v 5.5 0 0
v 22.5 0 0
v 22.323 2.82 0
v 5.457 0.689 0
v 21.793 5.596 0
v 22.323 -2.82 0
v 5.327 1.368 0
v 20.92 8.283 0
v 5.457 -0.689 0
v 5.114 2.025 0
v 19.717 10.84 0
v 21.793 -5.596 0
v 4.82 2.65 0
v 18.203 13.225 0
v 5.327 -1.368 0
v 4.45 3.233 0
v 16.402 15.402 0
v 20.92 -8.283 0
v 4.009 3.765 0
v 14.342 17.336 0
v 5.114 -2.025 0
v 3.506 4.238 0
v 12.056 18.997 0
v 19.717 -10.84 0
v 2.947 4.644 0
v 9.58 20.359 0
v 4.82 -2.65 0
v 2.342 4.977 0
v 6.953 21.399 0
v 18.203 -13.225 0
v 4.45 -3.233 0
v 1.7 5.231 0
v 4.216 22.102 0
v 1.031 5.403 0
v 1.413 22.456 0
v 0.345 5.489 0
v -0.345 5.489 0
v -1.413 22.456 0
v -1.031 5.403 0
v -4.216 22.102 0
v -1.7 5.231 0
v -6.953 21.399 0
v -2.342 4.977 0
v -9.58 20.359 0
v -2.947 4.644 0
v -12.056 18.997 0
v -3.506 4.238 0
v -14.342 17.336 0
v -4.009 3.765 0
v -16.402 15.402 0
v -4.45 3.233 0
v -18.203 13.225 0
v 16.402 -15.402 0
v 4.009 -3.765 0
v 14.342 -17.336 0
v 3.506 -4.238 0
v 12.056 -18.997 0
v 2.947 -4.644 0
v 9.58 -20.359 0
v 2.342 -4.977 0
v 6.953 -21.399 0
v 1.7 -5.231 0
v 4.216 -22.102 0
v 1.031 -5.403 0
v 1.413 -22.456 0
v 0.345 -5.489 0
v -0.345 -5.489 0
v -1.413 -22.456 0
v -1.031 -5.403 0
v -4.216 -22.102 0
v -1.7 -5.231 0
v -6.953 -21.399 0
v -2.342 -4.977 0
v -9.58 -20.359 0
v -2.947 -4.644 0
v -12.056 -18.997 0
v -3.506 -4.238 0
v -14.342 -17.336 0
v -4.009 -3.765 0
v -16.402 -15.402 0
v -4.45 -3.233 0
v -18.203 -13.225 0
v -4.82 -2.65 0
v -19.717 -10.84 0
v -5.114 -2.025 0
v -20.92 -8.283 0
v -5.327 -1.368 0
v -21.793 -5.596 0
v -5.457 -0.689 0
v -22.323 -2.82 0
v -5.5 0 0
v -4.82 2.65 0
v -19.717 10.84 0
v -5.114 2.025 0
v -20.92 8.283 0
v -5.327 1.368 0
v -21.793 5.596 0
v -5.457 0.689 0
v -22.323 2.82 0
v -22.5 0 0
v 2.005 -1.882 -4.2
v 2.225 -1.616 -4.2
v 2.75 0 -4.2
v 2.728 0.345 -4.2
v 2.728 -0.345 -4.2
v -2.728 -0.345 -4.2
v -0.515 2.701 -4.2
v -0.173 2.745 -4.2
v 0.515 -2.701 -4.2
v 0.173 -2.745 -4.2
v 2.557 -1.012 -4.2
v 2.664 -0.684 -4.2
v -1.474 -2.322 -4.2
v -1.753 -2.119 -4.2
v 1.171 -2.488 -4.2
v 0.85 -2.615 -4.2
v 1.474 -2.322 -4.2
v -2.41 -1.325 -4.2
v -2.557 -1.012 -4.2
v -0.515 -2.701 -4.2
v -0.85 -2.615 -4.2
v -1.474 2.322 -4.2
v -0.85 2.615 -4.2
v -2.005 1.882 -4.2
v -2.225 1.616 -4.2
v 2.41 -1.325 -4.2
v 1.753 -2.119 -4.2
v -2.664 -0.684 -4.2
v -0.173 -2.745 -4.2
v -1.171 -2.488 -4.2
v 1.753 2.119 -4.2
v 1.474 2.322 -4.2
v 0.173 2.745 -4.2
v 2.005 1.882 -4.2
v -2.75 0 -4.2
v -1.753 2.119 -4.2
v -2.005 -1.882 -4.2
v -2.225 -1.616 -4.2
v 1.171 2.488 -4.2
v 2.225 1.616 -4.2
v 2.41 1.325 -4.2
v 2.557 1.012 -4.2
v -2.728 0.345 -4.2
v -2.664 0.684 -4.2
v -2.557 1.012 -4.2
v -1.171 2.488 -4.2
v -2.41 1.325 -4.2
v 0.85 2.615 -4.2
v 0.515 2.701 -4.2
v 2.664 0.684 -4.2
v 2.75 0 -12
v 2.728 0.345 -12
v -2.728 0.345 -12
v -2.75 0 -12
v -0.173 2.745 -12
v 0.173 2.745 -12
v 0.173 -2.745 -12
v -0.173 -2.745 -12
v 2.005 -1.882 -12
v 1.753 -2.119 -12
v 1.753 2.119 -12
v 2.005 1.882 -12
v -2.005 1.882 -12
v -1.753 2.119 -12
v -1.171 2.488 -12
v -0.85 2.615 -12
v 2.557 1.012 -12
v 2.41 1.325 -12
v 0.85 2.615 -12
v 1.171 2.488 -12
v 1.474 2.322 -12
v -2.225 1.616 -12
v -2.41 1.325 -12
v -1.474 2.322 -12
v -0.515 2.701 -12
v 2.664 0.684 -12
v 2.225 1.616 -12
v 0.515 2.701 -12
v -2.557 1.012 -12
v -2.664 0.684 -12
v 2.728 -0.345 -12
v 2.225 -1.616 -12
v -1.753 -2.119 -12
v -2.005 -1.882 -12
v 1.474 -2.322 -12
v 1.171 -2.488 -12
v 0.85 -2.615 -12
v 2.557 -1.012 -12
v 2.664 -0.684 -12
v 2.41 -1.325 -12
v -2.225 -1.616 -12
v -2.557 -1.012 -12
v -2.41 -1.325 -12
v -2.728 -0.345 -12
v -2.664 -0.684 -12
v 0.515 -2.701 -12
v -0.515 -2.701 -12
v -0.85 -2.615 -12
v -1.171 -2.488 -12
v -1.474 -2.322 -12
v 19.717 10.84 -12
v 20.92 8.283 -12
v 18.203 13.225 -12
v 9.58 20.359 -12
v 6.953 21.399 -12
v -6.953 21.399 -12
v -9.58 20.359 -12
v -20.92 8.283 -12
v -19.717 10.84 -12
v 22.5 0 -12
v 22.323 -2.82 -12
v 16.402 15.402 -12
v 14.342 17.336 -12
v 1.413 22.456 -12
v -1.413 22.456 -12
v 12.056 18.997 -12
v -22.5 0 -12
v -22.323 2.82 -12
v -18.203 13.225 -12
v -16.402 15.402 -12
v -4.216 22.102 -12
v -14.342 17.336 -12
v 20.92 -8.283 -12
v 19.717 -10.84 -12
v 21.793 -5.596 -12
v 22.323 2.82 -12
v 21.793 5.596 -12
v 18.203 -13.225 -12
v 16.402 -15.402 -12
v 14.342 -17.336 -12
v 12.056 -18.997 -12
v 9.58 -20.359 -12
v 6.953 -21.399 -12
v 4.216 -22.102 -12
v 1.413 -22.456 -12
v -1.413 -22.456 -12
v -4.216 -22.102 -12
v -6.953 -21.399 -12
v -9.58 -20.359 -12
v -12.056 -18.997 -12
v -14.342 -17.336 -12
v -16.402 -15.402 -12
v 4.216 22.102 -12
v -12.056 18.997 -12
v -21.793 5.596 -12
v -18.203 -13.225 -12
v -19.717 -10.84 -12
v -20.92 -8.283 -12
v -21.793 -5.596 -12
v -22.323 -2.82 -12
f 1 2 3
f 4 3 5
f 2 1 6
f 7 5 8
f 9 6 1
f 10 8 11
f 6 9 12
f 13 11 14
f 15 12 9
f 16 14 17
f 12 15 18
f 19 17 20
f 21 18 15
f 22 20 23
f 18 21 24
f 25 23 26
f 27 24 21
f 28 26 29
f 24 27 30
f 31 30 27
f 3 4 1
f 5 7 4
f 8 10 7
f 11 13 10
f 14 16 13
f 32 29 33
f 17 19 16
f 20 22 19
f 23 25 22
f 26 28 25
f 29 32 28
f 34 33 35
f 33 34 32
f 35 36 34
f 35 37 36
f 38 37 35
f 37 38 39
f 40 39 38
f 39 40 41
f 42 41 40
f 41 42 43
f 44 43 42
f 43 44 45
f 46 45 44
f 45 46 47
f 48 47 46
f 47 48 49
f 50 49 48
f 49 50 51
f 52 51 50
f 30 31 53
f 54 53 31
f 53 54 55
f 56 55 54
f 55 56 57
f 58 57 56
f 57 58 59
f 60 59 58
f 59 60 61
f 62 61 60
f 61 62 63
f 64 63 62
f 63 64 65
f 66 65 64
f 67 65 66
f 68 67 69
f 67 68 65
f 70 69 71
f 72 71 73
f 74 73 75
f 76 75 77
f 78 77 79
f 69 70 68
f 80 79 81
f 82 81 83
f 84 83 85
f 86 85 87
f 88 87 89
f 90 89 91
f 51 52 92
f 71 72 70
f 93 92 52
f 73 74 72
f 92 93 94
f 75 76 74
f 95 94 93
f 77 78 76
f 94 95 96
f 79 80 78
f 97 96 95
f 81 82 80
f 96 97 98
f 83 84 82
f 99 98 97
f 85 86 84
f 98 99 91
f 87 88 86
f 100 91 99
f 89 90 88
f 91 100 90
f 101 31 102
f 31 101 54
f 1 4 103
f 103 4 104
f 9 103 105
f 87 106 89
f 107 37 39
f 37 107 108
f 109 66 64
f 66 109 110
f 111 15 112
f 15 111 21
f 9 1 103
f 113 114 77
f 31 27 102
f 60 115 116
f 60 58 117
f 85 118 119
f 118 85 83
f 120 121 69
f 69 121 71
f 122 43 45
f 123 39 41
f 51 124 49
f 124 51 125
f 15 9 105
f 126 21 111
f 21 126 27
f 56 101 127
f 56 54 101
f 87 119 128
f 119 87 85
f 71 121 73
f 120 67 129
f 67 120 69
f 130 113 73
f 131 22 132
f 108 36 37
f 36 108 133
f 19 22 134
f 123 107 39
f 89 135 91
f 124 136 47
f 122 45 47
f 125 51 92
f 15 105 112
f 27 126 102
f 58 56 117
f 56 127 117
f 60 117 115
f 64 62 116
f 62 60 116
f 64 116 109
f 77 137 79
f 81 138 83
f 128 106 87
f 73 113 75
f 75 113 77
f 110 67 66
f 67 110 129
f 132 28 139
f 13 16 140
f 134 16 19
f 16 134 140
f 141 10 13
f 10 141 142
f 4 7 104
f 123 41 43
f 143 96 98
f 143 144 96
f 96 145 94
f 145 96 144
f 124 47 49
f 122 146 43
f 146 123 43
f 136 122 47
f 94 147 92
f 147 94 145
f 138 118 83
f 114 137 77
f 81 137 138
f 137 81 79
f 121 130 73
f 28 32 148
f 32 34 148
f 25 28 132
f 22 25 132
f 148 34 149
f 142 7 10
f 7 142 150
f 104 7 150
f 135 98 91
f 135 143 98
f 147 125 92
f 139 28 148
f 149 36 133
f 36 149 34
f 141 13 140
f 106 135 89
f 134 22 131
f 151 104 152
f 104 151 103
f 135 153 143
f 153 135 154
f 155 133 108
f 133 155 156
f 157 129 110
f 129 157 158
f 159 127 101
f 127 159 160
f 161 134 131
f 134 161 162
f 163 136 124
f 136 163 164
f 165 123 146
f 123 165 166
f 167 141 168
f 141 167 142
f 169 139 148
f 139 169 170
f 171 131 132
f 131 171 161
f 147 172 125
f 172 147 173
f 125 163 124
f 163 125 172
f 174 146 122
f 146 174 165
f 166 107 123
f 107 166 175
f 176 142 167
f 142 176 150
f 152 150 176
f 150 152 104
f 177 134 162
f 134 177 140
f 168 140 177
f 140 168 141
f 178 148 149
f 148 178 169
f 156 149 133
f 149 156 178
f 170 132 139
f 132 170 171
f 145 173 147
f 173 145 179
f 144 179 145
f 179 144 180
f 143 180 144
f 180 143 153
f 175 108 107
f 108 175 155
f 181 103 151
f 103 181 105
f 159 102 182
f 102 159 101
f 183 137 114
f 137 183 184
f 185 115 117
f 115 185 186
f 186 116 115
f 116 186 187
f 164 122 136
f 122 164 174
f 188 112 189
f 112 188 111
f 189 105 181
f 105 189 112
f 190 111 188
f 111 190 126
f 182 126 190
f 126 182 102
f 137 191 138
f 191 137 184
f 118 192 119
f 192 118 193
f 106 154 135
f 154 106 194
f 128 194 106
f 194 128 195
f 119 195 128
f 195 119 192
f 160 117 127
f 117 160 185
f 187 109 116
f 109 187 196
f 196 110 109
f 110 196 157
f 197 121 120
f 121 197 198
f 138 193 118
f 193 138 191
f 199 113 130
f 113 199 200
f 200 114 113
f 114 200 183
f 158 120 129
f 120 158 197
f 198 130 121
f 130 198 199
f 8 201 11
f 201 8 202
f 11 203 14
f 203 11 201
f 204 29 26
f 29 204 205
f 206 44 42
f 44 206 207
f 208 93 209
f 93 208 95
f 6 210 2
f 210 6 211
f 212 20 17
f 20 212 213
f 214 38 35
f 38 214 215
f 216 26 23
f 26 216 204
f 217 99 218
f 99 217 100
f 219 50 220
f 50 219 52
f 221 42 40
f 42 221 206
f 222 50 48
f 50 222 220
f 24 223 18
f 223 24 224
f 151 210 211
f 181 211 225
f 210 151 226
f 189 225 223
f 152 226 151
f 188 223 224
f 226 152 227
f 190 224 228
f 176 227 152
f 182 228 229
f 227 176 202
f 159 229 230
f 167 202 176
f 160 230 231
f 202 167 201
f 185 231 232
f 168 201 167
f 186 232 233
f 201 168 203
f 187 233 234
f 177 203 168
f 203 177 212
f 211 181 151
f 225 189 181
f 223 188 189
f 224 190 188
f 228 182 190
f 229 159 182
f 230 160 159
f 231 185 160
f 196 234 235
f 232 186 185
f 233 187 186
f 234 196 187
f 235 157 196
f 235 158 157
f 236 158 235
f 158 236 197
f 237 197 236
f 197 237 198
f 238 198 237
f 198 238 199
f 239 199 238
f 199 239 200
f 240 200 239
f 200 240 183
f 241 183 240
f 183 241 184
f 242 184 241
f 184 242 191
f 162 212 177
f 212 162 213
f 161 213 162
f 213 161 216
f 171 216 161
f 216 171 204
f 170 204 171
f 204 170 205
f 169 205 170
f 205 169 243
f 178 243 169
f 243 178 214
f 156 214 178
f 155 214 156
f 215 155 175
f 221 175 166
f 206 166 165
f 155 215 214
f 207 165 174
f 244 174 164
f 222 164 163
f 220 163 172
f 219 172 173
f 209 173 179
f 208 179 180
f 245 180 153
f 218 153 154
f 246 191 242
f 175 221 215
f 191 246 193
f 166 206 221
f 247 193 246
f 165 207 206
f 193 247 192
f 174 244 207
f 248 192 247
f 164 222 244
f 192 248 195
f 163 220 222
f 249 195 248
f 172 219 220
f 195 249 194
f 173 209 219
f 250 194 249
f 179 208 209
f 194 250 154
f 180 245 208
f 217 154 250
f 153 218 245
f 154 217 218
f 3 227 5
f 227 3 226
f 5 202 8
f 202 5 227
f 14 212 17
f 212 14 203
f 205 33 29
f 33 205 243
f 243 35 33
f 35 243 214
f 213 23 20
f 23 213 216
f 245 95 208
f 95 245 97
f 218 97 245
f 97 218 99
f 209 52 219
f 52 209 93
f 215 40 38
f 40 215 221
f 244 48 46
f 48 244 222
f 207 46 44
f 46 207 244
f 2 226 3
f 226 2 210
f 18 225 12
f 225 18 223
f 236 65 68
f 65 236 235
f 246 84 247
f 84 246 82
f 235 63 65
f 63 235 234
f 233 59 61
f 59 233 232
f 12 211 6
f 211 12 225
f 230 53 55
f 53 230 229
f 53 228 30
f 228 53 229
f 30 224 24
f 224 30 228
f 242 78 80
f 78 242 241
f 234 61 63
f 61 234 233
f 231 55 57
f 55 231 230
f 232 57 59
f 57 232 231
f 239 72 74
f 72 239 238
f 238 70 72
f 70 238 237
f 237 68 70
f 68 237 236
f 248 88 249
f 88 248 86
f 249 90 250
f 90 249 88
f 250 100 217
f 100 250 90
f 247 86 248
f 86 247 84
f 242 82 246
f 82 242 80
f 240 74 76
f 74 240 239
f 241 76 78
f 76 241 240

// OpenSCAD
$fn = 50;


difference() {
	union() {
		translate(v = [0, 0, -12.0000000000]) {
			cylinder(h = 12, r = 22.5000000000);
		}
	}
	union() {
		translate(v = [0, 0, 0]) {
			rotate(a = [0, 0, 0]) {
				difference() {
					union() {
						translate(v = [0, 0, -15.0000000000]) {
							cylinder(h = 15, r = 2.2500000000);
						}
						translate(v = [0, 0, -4.2000000000]) {
							cylinder(h = 4.2000000000, r1 = 2.7500000000, r2 = 5.5000000000);
						}
						translate(v = [0, 0, -15.0000000000]) {
							cylinder(h = 15, r = 2.7500000000);
						}
						translate(v = [0, 0, -15.0000000000]) {
							cylinder(h = 15, r = 2.2500000000);
						}
					}
					union();
				}
			}
		}
	}
}
